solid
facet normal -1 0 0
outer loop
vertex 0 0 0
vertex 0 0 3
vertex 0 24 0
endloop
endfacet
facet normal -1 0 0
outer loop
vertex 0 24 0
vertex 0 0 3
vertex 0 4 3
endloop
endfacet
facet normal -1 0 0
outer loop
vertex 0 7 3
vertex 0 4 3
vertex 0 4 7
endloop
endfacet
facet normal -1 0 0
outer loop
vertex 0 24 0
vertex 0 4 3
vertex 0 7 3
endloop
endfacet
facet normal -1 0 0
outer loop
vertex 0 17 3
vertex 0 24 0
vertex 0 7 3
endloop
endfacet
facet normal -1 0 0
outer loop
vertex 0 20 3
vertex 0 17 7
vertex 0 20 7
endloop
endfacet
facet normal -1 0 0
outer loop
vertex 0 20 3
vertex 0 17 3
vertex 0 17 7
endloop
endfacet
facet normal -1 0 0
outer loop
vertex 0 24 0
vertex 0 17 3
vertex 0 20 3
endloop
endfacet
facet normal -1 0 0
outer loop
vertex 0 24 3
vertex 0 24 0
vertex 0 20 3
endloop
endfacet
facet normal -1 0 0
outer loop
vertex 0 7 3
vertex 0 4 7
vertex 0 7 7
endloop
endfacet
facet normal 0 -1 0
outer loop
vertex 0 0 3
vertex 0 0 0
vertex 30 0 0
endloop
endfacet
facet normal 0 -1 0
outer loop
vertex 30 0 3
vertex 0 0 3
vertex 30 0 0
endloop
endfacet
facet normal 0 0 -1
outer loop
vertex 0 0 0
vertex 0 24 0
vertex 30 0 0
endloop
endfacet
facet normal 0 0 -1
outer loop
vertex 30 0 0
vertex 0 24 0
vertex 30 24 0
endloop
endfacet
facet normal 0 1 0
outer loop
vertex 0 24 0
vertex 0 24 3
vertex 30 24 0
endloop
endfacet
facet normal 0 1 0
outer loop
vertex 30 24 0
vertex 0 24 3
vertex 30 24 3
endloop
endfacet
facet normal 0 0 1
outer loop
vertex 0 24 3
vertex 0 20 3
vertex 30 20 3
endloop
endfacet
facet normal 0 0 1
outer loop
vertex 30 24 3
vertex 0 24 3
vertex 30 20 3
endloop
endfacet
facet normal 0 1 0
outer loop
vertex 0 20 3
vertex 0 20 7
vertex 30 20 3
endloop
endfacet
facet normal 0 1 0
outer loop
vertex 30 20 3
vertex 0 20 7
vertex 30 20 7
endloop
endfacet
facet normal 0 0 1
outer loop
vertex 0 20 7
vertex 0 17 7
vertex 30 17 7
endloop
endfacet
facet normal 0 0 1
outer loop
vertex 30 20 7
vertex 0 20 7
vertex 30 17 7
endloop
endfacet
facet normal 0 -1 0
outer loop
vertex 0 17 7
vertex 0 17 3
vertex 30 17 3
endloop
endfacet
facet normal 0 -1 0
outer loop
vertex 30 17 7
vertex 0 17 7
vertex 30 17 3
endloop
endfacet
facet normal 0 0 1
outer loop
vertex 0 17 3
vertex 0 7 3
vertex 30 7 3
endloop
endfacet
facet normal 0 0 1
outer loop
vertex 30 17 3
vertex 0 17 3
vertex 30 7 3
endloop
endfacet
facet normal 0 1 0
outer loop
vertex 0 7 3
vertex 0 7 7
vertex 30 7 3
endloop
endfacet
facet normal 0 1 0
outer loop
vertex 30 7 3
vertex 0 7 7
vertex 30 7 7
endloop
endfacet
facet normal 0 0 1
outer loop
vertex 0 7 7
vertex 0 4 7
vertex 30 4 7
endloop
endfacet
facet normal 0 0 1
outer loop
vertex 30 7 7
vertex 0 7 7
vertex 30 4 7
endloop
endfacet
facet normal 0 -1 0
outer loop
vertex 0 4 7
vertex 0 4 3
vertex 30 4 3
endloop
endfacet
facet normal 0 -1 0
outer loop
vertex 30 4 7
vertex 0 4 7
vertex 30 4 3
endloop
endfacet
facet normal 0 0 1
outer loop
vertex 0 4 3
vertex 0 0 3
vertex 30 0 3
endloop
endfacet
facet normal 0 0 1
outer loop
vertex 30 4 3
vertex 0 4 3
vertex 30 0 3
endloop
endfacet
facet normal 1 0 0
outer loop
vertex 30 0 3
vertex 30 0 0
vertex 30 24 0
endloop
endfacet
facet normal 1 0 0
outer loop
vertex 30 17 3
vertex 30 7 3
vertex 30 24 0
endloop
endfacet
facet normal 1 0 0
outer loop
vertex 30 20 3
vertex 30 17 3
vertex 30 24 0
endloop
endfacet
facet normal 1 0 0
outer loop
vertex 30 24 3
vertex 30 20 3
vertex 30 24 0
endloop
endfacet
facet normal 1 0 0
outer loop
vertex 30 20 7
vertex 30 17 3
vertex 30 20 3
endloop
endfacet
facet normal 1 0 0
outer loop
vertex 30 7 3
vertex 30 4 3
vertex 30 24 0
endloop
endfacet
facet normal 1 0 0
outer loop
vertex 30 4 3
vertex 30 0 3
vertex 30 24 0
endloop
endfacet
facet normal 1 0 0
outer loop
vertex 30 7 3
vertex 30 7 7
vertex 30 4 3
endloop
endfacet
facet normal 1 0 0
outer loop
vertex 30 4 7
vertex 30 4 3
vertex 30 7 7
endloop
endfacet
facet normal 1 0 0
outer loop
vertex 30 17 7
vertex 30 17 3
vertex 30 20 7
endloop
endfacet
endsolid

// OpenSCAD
//----------------------------------------------------------------------
// stick holding bottom portion.
//
//----------------------------------------------------------------------

Thickness=3;
Len=30;
StickDia=10;    // for 10x10 stick
OverHang=4;
ArmCover=3;

//BoltRad=3/2;   // radius of boltholes -- 3mm bolt
BoltRad=.112*25.4/2;   // radius of boltholes - 4-40 bolt
LightGray=[.2,.2,.9,.2];

module item() {
cube([Len,StickDia+2*Thickness+2*OverHang,Thickness]);
translate([0,OverHang,0]) cube([Len,Thickness,Thickness+OverHang]);
translate([0,OverHang+Thickness+StickDia,0]) cube([Len,Thickness,Thickness+OverHang]);
}


//----------------------------------------------------------------------
// main print logic.  we can print one or several
//----------------------------------------------------------------------

BedWid=285;       // Makerbot 2: width of printer bed (x coordinate)
BedDep=153;       // Makerbot 2: depth of printer bed (y coordinate)
Gap=5;            // spacing between multiple copies

module several(a,b) {
    translate([-BedWid/2,-BedDep/2,0]) {
        for (a0=[0:a-1]) {
            for (b0=[0:b-1]) {
                translate([a0*(BedWid+Gap),b0*(BedWid+Gap),0])
                    item();
            }
        }
    }
}


item();
//several(2,2);
